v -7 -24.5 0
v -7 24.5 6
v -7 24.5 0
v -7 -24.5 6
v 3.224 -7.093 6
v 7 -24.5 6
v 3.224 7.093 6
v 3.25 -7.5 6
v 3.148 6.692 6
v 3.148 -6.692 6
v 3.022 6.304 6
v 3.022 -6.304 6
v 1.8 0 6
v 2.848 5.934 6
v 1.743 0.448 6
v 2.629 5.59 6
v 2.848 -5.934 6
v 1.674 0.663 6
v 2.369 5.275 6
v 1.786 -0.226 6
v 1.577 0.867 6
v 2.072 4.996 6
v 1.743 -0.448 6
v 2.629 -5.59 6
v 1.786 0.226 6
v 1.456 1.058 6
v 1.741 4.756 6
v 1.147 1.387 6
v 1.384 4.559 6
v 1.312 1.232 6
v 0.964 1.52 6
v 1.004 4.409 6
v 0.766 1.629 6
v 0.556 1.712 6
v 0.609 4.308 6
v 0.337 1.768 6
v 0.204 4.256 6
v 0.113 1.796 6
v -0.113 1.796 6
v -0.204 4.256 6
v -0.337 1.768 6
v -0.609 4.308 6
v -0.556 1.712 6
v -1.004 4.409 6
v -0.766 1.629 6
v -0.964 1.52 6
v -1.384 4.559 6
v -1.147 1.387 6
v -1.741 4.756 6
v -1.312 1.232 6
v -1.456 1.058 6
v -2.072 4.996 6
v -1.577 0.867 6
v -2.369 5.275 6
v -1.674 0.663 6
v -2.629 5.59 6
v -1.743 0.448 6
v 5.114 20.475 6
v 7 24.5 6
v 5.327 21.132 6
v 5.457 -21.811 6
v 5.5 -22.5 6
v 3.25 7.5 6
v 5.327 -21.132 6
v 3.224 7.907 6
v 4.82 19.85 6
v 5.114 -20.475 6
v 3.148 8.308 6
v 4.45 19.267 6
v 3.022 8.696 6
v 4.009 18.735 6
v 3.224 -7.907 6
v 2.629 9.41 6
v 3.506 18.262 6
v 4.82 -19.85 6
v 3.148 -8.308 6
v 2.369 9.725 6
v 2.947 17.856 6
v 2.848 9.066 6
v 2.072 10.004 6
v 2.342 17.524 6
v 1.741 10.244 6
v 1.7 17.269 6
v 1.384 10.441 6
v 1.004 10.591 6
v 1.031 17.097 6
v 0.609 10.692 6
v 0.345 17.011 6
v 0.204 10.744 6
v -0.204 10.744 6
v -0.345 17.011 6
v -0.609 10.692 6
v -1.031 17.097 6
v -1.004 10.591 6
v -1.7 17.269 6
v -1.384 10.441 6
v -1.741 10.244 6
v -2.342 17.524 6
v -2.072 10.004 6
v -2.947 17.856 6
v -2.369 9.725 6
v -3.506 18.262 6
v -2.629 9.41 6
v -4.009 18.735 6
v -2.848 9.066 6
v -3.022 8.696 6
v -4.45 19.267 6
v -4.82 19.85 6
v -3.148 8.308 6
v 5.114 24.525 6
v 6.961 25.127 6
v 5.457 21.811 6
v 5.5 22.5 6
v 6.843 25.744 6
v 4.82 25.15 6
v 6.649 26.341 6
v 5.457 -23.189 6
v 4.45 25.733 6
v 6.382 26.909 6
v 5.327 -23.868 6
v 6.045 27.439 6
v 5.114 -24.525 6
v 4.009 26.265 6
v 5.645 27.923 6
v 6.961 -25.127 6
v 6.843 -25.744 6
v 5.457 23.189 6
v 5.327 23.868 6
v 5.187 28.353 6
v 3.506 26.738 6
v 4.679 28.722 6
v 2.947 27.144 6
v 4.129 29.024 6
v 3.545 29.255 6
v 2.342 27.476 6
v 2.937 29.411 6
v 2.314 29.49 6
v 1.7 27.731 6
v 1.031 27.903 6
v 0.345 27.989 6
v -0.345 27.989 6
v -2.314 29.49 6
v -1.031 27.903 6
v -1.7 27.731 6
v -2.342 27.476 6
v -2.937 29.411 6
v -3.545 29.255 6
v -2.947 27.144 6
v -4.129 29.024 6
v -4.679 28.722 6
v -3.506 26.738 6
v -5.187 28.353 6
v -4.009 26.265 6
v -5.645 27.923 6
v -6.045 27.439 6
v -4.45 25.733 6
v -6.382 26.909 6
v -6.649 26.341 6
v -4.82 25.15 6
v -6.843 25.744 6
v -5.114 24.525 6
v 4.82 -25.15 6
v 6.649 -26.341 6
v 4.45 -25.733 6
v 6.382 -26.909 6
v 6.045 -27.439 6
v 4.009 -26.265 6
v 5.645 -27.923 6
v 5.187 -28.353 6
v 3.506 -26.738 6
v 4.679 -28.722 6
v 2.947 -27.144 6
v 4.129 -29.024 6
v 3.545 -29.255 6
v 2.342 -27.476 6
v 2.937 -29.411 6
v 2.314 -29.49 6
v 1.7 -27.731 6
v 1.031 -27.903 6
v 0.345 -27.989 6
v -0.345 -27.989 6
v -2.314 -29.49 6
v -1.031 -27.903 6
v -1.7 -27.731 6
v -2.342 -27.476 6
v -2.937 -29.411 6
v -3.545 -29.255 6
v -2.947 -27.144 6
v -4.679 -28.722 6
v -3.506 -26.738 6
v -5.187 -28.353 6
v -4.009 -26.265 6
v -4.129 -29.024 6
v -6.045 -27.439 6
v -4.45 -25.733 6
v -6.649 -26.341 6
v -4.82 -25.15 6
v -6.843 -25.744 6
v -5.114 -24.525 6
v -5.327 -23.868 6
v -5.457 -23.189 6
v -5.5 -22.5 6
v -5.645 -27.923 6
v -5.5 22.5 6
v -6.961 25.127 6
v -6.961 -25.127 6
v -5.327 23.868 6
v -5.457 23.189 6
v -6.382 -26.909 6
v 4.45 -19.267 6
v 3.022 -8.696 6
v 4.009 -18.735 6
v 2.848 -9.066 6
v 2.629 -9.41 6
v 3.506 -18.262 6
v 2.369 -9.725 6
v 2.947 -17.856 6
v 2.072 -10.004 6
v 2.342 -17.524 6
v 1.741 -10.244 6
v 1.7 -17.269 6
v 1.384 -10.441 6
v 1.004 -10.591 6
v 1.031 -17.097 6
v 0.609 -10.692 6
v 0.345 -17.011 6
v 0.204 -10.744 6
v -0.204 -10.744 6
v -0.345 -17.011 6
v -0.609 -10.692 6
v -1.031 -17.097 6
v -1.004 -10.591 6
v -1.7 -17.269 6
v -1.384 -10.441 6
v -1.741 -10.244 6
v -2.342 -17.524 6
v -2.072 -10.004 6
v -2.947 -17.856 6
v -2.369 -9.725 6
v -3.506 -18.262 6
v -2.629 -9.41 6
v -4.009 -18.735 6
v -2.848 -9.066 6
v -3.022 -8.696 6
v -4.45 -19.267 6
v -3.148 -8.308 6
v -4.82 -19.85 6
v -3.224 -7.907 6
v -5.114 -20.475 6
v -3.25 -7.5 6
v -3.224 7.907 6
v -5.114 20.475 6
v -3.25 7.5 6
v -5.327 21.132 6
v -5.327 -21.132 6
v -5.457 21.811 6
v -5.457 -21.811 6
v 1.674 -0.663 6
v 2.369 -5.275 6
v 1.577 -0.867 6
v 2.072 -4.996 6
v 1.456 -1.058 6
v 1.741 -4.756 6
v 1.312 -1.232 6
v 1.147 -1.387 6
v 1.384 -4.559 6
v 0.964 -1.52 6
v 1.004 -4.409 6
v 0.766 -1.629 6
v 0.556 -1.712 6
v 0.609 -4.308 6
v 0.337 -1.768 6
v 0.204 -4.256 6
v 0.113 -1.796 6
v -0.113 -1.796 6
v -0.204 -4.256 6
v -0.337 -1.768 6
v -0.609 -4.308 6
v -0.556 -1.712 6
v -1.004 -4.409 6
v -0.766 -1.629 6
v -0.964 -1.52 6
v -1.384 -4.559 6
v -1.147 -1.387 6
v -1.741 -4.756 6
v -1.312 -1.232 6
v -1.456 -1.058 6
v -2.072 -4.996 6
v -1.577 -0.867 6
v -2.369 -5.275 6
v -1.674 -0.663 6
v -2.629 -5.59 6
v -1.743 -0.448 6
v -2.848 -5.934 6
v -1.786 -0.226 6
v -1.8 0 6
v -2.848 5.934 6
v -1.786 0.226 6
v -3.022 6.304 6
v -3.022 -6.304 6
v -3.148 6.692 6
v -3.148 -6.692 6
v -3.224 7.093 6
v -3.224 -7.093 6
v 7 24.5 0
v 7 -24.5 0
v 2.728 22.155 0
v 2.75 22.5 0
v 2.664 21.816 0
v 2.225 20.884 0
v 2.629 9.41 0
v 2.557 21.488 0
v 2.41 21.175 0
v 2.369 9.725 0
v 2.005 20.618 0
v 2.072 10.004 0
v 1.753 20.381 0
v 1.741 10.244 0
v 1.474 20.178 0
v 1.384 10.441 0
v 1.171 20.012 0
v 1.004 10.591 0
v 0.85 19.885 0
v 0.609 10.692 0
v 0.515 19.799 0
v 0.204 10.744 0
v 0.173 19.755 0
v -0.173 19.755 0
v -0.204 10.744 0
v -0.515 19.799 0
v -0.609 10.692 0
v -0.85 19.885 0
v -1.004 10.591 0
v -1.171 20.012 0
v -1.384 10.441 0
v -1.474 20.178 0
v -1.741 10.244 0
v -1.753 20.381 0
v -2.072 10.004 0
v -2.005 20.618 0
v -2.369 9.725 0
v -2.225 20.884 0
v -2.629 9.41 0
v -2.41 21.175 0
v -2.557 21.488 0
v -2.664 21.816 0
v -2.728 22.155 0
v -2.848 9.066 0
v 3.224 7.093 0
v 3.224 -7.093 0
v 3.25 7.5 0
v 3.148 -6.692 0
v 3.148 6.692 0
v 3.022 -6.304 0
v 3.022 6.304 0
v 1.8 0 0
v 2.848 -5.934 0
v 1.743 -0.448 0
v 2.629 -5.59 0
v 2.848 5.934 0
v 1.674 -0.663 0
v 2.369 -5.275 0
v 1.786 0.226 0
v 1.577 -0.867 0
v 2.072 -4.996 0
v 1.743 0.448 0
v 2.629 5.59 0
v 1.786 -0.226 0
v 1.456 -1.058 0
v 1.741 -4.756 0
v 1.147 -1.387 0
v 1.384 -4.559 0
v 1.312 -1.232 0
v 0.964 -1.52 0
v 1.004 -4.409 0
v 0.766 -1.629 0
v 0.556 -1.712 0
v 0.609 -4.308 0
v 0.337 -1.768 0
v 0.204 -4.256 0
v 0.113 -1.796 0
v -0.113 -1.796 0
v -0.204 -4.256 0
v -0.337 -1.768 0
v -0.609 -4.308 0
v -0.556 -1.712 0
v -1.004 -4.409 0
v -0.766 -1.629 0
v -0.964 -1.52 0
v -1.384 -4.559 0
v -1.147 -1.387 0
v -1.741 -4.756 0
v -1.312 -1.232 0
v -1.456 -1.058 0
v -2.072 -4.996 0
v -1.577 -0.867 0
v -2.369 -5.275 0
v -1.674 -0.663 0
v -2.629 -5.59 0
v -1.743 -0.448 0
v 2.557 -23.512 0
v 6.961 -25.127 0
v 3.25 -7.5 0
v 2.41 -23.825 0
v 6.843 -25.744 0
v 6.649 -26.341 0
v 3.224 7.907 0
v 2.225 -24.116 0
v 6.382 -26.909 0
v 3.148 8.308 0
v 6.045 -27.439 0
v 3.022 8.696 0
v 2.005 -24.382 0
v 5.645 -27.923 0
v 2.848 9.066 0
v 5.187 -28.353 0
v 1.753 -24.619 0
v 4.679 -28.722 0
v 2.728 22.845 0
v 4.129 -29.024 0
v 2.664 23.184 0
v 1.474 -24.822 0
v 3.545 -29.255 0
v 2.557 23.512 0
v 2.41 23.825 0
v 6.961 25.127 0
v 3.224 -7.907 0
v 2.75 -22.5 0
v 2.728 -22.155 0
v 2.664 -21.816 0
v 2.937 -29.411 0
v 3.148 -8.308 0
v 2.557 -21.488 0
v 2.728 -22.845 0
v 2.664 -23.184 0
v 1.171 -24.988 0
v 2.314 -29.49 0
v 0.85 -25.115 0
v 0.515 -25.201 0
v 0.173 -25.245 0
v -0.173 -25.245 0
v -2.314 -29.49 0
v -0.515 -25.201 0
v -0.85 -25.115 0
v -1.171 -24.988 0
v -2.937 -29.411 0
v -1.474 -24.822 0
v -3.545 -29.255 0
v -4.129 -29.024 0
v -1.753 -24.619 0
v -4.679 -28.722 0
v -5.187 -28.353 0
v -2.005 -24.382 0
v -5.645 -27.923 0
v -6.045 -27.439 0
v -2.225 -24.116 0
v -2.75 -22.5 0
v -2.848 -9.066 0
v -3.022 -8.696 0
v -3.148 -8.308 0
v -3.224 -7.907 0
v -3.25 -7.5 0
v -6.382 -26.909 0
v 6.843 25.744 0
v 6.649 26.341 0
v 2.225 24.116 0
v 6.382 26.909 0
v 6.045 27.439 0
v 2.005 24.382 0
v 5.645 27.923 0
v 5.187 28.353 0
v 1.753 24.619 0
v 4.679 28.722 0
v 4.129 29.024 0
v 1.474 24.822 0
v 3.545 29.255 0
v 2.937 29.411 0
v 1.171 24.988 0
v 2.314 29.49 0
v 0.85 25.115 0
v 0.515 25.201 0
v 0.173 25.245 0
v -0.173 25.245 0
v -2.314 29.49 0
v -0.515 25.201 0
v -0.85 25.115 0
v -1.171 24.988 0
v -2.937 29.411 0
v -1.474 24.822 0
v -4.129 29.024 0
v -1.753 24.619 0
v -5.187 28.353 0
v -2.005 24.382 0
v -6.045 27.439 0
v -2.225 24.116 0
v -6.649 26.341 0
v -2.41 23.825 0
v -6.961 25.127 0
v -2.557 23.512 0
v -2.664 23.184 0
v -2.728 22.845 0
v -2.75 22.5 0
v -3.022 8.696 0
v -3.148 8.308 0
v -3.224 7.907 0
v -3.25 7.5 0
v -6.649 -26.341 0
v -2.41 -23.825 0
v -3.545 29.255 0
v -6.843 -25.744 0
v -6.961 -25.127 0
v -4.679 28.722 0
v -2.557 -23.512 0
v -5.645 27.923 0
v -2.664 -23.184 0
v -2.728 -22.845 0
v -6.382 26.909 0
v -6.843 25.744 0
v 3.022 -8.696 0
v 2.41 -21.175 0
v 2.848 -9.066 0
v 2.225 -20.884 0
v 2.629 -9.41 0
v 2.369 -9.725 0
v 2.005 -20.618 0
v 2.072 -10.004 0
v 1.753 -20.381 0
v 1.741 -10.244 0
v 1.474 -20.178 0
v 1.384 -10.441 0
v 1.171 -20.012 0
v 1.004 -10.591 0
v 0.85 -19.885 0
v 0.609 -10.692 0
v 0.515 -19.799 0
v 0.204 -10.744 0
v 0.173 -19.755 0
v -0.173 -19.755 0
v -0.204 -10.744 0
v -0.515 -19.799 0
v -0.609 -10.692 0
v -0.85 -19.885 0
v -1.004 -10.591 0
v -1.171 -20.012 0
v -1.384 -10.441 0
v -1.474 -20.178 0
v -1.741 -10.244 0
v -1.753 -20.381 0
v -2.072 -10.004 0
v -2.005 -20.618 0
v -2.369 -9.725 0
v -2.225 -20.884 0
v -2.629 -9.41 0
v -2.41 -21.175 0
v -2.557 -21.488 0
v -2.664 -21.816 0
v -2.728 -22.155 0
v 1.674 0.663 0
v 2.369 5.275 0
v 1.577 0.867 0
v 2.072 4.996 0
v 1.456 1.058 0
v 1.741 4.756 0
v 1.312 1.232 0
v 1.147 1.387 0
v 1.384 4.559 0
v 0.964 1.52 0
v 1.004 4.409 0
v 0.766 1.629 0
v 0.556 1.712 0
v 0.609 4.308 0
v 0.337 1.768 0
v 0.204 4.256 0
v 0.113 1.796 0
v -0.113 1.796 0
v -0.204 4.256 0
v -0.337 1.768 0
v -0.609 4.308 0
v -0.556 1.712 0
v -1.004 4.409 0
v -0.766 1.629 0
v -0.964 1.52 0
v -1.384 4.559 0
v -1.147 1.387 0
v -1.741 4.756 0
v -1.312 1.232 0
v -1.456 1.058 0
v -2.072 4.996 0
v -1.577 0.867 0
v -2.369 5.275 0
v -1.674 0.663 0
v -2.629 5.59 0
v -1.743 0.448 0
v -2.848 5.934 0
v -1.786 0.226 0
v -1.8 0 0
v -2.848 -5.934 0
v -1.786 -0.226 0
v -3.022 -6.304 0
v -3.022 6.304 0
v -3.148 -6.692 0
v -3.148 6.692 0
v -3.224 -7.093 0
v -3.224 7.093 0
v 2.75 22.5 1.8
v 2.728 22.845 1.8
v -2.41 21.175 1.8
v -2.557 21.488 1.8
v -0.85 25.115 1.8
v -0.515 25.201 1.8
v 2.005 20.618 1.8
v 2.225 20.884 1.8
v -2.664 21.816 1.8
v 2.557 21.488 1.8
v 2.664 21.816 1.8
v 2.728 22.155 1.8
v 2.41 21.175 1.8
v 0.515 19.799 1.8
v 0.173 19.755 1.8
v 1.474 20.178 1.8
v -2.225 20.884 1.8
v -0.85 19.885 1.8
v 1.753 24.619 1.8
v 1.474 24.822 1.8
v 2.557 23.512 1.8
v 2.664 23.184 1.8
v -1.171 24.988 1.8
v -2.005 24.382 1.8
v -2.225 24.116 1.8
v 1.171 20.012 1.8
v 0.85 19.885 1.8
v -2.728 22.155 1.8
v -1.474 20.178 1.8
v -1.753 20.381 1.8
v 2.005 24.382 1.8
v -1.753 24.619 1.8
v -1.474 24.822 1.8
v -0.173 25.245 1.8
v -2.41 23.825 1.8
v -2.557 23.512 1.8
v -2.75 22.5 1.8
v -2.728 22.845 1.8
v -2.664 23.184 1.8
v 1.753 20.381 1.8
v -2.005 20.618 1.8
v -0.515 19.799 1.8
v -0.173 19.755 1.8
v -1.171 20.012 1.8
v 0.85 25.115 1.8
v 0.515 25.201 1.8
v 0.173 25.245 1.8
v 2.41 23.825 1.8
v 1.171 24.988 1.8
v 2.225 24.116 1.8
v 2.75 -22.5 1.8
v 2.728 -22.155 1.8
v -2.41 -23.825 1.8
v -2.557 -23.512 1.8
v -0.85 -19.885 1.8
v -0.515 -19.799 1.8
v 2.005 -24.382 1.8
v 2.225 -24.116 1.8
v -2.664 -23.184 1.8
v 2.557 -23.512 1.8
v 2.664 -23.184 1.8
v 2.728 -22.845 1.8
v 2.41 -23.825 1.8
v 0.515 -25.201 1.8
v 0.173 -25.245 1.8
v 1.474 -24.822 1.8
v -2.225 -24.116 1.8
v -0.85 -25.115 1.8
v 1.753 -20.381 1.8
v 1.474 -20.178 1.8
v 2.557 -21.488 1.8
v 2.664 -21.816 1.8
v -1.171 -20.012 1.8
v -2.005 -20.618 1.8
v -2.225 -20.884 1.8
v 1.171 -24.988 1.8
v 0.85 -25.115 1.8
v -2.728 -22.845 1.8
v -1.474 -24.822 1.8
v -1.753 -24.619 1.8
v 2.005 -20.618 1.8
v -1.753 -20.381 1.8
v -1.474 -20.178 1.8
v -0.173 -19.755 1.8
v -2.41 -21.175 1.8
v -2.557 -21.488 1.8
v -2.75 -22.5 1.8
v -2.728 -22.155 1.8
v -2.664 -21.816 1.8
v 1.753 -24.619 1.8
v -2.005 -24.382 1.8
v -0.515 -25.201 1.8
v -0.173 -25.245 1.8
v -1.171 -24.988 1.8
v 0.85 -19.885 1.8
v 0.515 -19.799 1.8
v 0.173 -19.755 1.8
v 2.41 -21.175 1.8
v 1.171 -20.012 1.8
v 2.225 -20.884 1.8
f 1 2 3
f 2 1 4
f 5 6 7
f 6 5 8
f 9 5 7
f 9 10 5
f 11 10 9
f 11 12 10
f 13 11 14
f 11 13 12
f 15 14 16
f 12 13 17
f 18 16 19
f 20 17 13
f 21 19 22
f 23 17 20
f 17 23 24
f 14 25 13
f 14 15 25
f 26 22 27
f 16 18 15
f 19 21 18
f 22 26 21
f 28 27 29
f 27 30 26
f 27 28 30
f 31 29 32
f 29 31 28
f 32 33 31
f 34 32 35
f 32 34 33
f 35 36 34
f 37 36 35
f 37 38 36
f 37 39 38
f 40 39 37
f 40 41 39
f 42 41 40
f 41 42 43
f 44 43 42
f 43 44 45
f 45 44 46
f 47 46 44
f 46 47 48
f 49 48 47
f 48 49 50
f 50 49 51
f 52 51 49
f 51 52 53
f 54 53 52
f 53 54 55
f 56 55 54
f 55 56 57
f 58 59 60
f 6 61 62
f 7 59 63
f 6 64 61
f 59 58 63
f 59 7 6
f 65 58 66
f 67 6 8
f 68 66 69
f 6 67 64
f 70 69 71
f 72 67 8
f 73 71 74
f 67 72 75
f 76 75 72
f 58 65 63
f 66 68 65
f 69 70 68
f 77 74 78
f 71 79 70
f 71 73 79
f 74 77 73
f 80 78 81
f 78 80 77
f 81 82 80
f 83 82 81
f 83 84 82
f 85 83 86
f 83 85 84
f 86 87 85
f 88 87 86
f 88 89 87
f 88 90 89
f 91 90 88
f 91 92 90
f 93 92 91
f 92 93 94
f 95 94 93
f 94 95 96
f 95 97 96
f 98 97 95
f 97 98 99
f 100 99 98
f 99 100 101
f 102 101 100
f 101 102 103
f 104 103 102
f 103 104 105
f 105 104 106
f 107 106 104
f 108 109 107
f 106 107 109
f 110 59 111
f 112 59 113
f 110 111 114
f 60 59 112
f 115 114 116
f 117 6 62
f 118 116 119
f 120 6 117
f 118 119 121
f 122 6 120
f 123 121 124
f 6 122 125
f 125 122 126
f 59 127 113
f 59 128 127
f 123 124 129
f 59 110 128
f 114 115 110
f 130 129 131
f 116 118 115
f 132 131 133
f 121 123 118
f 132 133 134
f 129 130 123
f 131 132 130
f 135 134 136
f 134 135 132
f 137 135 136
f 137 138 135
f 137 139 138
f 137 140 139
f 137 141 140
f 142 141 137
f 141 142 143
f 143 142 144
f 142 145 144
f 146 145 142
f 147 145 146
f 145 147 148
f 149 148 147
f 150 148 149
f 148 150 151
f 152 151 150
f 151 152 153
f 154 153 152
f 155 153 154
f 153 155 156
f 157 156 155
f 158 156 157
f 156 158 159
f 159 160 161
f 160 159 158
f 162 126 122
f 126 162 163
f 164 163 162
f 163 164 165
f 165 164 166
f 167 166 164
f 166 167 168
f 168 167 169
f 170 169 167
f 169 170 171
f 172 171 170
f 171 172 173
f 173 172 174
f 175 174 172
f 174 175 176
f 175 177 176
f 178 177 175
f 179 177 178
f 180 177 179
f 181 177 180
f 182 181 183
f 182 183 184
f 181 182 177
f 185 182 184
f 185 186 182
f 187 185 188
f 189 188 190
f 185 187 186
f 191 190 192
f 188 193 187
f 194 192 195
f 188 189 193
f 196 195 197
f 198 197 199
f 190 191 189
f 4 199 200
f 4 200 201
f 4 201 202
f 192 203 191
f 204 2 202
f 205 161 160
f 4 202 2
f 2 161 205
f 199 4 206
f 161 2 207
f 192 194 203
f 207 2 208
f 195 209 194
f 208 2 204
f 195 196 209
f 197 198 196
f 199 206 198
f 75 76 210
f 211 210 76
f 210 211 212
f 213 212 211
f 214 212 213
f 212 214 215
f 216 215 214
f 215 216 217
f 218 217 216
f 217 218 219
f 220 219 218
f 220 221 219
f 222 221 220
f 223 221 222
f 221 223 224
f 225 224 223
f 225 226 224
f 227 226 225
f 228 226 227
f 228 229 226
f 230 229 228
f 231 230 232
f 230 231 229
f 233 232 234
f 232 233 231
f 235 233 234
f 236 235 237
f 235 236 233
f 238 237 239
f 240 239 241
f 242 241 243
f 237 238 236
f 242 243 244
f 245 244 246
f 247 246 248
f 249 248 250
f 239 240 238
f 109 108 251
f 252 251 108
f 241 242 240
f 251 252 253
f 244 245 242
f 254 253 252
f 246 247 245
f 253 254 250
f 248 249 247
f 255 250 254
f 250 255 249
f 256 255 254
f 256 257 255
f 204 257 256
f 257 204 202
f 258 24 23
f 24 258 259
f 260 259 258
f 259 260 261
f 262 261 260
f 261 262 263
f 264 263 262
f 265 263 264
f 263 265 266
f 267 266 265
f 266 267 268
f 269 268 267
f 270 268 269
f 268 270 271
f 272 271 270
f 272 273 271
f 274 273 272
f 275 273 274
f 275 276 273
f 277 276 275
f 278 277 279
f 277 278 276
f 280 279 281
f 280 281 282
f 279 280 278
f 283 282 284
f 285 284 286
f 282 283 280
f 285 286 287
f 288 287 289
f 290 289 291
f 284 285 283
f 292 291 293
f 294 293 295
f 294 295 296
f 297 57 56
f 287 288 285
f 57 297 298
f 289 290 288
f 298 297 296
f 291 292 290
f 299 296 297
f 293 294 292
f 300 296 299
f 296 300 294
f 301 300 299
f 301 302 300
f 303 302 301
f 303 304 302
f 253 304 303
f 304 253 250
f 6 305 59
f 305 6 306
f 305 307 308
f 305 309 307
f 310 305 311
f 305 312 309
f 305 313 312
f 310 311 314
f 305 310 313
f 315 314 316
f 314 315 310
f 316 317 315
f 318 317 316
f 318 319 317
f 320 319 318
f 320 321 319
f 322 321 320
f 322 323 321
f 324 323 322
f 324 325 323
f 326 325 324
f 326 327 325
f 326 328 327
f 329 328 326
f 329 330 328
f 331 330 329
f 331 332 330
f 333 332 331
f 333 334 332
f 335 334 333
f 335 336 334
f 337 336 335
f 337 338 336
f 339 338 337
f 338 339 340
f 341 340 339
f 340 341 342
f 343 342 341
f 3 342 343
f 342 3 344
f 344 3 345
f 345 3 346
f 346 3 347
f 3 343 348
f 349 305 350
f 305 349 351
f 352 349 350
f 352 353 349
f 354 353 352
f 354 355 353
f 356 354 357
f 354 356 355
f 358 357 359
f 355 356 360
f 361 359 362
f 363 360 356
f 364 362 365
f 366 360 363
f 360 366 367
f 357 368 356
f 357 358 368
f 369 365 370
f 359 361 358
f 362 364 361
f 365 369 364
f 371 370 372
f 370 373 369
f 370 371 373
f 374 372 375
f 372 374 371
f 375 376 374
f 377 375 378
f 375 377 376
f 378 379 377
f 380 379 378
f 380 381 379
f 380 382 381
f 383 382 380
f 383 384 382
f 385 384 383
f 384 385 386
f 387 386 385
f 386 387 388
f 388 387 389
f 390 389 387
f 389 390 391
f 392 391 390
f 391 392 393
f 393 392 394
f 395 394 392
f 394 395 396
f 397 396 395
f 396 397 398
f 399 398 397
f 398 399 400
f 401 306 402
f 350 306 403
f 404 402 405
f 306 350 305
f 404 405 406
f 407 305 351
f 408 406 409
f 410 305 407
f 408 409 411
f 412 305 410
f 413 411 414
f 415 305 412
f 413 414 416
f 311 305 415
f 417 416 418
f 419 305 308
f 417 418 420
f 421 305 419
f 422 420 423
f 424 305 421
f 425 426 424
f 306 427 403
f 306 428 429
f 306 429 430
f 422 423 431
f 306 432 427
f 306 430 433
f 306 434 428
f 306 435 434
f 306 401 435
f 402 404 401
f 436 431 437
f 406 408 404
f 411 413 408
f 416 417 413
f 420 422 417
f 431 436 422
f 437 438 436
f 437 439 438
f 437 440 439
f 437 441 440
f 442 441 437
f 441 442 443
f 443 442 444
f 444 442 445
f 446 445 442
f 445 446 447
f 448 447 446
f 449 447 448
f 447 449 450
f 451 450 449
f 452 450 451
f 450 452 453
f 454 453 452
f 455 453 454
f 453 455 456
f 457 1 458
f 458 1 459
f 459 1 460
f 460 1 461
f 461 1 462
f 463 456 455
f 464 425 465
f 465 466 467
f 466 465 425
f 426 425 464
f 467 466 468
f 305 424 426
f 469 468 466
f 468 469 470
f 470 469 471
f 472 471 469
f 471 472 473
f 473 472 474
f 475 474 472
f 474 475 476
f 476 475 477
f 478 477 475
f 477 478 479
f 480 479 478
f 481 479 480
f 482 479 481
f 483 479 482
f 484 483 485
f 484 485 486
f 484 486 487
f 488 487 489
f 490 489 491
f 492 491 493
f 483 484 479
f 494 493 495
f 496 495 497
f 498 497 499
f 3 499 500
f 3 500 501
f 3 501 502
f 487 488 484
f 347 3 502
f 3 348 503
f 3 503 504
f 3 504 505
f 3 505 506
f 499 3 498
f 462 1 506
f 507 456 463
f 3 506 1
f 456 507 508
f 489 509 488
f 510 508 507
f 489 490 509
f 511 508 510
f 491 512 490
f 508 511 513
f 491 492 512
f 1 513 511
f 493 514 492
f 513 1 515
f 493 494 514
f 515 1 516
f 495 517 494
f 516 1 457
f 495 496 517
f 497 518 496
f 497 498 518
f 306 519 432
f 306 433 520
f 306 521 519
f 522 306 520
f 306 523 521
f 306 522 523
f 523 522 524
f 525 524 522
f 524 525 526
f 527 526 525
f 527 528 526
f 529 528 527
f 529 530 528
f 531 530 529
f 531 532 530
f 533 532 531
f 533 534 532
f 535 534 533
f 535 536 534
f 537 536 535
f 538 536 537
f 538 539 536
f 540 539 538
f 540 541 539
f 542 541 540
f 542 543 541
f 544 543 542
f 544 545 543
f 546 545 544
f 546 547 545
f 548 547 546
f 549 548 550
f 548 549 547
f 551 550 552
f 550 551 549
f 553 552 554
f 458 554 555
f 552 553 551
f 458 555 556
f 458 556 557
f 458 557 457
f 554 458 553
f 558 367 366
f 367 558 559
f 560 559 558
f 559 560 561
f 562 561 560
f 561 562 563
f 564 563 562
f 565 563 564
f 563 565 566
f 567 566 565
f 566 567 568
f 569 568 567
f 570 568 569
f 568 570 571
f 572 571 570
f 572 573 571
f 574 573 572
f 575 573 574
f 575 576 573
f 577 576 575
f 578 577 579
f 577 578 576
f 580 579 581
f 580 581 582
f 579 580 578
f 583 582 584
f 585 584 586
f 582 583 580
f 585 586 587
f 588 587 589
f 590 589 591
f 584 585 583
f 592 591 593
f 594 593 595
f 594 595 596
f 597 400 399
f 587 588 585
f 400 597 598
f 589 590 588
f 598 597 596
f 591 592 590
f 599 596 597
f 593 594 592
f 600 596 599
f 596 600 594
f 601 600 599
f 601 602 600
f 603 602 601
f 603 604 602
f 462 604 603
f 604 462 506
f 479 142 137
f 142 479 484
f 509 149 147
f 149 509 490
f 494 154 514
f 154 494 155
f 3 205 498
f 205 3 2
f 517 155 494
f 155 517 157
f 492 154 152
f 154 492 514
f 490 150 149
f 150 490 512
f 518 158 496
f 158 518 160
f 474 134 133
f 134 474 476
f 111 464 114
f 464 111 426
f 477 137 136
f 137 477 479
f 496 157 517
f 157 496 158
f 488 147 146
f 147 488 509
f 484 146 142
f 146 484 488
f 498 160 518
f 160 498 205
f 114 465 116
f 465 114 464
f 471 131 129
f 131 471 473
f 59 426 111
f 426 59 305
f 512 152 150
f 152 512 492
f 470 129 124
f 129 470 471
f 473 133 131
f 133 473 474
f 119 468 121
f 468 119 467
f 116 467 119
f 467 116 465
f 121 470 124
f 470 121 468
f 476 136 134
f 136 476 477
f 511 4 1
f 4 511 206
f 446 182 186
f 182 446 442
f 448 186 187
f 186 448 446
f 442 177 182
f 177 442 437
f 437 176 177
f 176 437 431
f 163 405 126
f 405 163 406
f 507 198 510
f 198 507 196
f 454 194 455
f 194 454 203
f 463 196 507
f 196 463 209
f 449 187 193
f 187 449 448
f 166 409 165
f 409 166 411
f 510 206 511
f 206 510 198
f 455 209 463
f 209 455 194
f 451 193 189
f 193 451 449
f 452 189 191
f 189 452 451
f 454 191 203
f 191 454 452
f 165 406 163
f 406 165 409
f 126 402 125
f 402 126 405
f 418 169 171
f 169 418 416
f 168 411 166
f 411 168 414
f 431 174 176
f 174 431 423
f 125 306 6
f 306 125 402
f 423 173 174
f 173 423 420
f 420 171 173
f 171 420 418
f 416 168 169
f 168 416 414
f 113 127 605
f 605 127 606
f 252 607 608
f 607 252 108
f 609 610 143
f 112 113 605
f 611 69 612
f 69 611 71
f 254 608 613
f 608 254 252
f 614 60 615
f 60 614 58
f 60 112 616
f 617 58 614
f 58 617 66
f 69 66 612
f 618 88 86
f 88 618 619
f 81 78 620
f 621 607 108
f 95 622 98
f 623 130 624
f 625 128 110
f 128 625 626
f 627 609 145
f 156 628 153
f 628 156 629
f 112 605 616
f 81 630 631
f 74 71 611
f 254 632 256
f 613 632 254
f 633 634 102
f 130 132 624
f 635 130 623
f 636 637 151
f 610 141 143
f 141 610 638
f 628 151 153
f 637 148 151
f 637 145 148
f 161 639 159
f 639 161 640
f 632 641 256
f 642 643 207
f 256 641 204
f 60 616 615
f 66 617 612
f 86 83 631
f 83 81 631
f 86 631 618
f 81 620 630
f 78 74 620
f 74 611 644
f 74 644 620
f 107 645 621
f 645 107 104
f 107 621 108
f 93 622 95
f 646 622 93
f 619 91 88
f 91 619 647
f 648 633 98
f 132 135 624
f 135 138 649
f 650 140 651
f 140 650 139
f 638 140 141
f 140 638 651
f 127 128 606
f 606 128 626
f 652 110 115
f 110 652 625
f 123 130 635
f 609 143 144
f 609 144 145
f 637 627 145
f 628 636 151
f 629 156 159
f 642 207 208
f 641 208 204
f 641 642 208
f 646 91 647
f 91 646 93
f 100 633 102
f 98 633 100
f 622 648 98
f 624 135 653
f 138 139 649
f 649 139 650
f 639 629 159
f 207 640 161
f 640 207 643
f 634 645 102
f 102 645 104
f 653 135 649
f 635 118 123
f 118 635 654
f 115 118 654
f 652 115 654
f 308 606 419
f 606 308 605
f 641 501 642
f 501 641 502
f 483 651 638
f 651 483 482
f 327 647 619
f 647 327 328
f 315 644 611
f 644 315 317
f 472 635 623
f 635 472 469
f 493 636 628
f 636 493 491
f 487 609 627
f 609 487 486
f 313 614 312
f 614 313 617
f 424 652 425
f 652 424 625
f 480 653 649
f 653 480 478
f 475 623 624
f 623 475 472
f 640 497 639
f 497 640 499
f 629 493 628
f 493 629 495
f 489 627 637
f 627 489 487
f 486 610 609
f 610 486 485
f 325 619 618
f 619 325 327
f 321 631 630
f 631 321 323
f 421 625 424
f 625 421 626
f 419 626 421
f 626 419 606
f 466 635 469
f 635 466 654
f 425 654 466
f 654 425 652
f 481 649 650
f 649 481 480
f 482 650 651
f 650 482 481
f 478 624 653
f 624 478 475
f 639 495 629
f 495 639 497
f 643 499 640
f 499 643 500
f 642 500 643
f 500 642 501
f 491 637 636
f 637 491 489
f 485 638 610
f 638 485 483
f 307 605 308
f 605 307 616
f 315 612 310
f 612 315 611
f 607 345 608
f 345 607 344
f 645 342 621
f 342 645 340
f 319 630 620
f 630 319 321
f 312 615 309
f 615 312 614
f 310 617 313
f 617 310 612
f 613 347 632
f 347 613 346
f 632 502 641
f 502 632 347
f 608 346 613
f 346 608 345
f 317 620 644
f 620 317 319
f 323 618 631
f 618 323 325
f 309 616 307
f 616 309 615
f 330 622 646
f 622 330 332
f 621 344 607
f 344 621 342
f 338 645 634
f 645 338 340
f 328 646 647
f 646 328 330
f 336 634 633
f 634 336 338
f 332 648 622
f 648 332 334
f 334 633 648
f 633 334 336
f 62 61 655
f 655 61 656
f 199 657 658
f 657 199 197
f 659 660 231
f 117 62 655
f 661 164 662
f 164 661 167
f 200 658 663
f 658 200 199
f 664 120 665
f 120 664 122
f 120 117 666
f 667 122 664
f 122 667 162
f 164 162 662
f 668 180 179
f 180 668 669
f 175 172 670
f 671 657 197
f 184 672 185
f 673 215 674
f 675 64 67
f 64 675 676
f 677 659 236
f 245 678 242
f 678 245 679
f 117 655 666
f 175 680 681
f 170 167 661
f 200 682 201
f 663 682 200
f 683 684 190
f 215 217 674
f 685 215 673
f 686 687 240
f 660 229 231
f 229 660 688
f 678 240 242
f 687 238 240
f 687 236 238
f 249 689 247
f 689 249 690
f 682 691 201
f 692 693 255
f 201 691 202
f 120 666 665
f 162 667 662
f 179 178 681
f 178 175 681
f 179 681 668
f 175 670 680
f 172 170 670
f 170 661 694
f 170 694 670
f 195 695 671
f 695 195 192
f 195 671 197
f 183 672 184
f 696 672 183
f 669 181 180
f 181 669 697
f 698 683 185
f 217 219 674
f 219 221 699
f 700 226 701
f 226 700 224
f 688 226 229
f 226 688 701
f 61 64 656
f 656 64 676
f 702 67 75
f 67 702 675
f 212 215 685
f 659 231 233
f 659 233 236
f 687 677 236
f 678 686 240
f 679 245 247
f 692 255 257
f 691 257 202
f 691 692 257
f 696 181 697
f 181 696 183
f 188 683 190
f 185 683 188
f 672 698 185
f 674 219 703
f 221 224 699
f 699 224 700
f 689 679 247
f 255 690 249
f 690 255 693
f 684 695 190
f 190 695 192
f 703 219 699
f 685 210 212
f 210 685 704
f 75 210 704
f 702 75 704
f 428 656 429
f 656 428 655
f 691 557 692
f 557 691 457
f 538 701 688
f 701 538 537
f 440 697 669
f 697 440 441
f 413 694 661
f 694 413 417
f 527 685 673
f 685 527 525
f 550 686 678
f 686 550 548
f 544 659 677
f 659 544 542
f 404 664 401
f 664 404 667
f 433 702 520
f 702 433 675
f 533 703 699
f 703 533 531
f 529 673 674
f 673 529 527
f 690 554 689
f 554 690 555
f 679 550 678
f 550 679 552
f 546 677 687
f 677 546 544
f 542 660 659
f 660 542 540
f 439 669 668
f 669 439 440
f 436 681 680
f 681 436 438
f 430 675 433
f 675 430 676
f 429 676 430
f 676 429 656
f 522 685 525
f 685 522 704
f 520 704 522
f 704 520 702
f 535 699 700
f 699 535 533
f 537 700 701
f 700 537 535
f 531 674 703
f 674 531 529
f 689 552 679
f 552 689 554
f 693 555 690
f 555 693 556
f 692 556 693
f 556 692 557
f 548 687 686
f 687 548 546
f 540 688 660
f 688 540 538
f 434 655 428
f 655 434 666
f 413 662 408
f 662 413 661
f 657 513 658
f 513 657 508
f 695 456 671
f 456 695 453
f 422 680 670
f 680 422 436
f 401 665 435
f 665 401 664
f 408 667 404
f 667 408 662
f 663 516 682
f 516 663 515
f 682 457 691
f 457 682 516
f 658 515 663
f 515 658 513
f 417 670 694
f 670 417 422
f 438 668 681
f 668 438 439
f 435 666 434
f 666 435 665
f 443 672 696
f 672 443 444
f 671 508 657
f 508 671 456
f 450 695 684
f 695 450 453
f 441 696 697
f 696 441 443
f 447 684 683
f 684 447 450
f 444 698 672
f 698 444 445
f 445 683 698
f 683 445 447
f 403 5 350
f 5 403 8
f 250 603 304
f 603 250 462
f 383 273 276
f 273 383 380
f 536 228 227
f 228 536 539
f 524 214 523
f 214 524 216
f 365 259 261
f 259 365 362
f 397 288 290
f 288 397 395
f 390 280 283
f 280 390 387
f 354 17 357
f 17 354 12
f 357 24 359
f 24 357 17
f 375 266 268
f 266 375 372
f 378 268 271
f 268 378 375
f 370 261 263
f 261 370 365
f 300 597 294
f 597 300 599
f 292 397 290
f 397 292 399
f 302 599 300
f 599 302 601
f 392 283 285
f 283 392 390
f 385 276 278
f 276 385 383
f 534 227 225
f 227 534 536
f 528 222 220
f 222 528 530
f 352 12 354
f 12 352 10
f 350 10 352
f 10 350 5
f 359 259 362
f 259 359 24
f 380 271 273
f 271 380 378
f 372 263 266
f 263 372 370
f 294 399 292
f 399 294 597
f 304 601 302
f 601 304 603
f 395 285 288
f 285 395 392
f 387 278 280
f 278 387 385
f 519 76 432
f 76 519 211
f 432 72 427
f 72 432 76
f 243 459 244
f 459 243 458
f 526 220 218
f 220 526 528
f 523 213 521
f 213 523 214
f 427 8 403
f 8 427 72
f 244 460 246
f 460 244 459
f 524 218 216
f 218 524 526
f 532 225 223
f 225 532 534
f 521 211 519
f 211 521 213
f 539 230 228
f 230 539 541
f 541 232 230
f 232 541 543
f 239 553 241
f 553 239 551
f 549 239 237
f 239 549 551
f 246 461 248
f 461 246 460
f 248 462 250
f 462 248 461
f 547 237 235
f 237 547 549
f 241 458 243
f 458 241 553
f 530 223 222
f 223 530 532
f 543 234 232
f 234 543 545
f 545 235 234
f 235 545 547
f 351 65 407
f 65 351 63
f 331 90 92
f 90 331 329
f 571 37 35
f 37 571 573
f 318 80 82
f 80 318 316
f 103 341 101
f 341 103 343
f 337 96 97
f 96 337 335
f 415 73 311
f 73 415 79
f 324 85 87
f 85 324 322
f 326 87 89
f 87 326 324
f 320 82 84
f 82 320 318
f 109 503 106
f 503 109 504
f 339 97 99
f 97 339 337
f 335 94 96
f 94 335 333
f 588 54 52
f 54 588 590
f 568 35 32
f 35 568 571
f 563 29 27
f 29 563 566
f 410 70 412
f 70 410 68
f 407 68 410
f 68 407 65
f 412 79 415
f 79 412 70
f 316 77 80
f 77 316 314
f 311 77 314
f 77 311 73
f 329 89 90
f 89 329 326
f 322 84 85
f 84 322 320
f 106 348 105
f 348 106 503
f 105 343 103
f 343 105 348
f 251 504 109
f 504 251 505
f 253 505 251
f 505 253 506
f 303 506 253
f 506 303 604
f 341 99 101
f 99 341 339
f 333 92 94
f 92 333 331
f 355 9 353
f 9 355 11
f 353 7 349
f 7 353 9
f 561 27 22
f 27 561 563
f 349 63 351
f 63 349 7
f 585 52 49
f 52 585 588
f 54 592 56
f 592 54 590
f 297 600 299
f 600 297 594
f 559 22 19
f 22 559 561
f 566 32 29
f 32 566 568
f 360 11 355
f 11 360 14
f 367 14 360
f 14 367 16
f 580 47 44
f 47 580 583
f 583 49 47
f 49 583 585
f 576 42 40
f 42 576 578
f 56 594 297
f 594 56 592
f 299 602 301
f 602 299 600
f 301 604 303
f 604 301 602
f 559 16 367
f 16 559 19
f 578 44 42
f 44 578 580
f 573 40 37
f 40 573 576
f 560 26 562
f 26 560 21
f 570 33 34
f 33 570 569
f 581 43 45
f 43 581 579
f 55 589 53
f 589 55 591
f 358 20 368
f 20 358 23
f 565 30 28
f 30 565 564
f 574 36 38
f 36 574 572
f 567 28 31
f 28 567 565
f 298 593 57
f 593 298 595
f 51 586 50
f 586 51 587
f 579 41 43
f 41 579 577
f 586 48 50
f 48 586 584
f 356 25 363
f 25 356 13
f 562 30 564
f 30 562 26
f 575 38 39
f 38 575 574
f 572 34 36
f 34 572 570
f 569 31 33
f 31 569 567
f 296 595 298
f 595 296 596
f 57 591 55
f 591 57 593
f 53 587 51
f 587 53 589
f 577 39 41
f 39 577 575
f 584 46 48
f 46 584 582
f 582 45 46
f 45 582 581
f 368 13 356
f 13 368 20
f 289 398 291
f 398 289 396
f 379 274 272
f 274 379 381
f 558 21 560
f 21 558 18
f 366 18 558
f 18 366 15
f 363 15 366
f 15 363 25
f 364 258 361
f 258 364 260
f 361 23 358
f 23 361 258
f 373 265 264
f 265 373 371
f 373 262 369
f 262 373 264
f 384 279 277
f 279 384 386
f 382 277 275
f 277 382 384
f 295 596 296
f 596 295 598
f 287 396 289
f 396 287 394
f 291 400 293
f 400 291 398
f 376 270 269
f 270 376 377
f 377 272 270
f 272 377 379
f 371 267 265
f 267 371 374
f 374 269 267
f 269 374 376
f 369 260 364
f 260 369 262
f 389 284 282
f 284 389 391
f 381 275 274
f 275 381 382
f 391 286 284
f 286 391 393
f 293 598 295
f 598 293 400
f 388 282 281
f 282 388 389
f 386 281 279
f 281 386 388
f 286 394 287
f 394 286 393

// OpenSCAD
$fn = 50;


difference() {
	union() {
		hull() {
			translate(v = [-2.0000000000, 9.5000000000, 0]) {
				cylinder(h = 6, r = 5);
			}
			translate(v = [2.0000000000, 9.5000000000, 0]) {
				cylinder(h = 6, r = 5);
			}
			translate(v = [-2.0000000000, -9.5000000000, 0]) {
				cylinder(h = 6, r = 5);
			}
			translate(v = [2.0000000000, -9.5000000000, 0]) {
				cylinder(h = 6, r = 5);
			}
		}
		translate(v = [0.0000000000, 15.0000000000, 0]) {
			hull() {
				translate(v = [-2.0000000000, 9.5000000000, 0]) {
					cylinder(h = 6, r = 5);
				}
				translate(v = [2.0000000000, 9.5000000000, 0]) {
					cylinder(h = 6, r = 5);
				}
				translate(v = [-2.0000000000, -9.5000000000, 0]) {
					cylinder(h = 6, r = 5);
				}
				translate(v = [2.0000000000, -9.5000000000, 0]) {
					cylinder(h = 6, r = 5);
				}
			}
		}
		translate(v = [0.0000000000, 15.0000000000, 0]) {
			hull() {
				translate(v = [-2.0000000000, 9.5000000000, 0]) {
					cylinder(h = 6, r = 5);
				}
				translate(v = [2.0000000000, 9.5000000000, 0]) {
					cylinder(h = 6, r = 5);
				}
				translate(v = [-2.0000000000, -9.5000000000, 0]) {
					cylinder(h = 6, r = 5);
				}
				translate(v = [2.0000000000, -9.5000000000, 0]) {
					cylinder(h = 6, r = 5);
				}
			}
		}
		translate(v = [0.0000000000, -15.0000000000, 0]) {
			hull() {
				translate(v = [-2.0000000000, 9.5000000000, 0]) {
					cylinder(h = 6, r = 5);
				}
				translate(v = [2.0000000000, 9.5000000000, 0]) {
					cylinder(h = 6, r = 5);
				}
				translate(v = [-2.0000000000, -9.5000000000, 0]) {
					cylinder(h = 6, r = 5);
				}
				translate(v = [2.0000000000, -9.5000000000, 0]) {
					cylinder(h = 6, r = 5);
				}
			}
		}
		translate(v = [0.0000000000, -15.0000000000, 0]) {
			hull() {
				translate(v = [-2.0000000000, 9.5000000000, 0]) {
					cylinder(h = 6, r = 5);
				}
				translate(v = [2.0000000000, 9.5000000000, 0]) {
					cylinder(h = 6, r = 5);
				}
				translate(v = [-2.0000000000, -9.5000000000, 0]) {
					cylinder(h = 6, r = 5);
				}
				translate(v = [2.0000000000, -9.5000000000, 0]) {
					cylinder(h = 6, r = 5);
				}
			}
		}
	}
	union() {
		translate(v = [0.0000000000, 22.5000000000, 6]) {
			rotate(a = [0, 0, 0]) {
				difference() {
					union() {
						#translate(v = [0, 0, -6.0000000000]) {
							cylinder(h = 6, r = 2.2500000000);
						}
						#translate(v = [0, 0, -4.2000000000]) {
							cylinder(h = 4.2000000000, r1 = 2.7500000000, r2 = 5.5000000000);
						}
						#translate(v = [0, 0, -6.0000000000]) {
							cylinder(h = 6, r = 2.7500000000);
						}
						#translate(v = [0, 0, -6.0000000000]) {
							cylinder(h = 6, r = 2.2500000000);
						}
					}
					union();
				}
			}
		}
		translate(v = [0.0000000000, 22.5000000000, 6]) {
			rotate(a = [0, 0, 0]) {
				difference() {
					union() {
						#translate(v = [0, 0, -6.0000000000]) {
							cylinder(h = 6, r = 2.2500000000);
						}
						#translate(v = [0, 0, -4.2000000000]) {
							cylinder(h = 4.2000000000, r1 = 2.7500000000, r2 = 5.5000000000);
						}
						#translate(v = [0, 0, -6.0000000000]) {
							cylinder(h = 6, r = 2.7500000000);
						}
						#translate(v = [0, 0, -6.0000000000]) {
							cylinder(h = 6, r = 2.2500000000);
						}
					}
					union();
				}
			}
		}
		translate(v = [0.0000000000, -22.5000000000, 6]) {
			rotate(a = [0, 0, 0]) {
				difference() {
					union() {
						#translate(v = [0, 0, -6.0000000000]) {
							cylinder(h = 6, r = 2.2500000000);
						}
						#translate(v = [0, 0, -4.2000000000]) {
							cylinder(h = 4.2000000000, r1 = 2.7500000000, r2 = 5.5000000000);
						}
						#translate(v = [0, 0, -6.0000000000]) {
							cylinder(h = 6, r = 2.7500000000);
						}
						#translate(v = [0, 0, -6.0000000000]) {
							cylinder(h = 6, r = 2.2500000000);
						}
					}
					union();
				}
			}
		}
		translate(v = [0.0000000000, -22.5000000000, 6]) {
			rotate(a = [0, 0, 0]) {
				difference() {
					union() {
						#translate(v = [0, 0, -6.0000000000]) {
							cylinder(h = 6, r = 2.2500000000);
						}
						#translate(v = [0, 0, -4.2000000000]) {
							cylinder(h = 4.2000000000, r1 = 2.7500000000, r2 = 5.5000000000);
						}
						#translate(v = [0, 0, -6.0000000000]) {
							cylinder(h = 6, r = 2.7500000000);
						}
						#translate(v = [0, 0, -6.0000000000]) {
							cylinder(h = 6, r = 2.2500000000);
						}
					}
					union();
				}
			}
		}
		translate(v = [0.0000000000, -7.5000000000, 0]) {
			translate(v = [0, 0, -100]) {
				cylinder(h = 200, r = 3.2500000000);
			}
		}
		translate(v = [0.0000000000, 7.5000000000, 0]) {
			translate(v = [0, 0, -100]) {
				cylinder(h = 200, r = 3.2500000000);
			}
		}
		translate(v = [0.0000000000, -7.5000000000, 0]) {
			translate(v = [0, 0, -100]) {
				cylinder(h = 200, r = 1.8000000000);
			}
		}
		translate(v = [0, 0, -100]) {
			cylinder(h = 200, r = 1.8000000000);
		}
		translate(v = [0.0000000000, 7.5000000000, 0]) {
			translate(v = [0, 0, -100]) {
				cylinder(h = 200, r = 1.8000000000);
			}
		}
	}
}
